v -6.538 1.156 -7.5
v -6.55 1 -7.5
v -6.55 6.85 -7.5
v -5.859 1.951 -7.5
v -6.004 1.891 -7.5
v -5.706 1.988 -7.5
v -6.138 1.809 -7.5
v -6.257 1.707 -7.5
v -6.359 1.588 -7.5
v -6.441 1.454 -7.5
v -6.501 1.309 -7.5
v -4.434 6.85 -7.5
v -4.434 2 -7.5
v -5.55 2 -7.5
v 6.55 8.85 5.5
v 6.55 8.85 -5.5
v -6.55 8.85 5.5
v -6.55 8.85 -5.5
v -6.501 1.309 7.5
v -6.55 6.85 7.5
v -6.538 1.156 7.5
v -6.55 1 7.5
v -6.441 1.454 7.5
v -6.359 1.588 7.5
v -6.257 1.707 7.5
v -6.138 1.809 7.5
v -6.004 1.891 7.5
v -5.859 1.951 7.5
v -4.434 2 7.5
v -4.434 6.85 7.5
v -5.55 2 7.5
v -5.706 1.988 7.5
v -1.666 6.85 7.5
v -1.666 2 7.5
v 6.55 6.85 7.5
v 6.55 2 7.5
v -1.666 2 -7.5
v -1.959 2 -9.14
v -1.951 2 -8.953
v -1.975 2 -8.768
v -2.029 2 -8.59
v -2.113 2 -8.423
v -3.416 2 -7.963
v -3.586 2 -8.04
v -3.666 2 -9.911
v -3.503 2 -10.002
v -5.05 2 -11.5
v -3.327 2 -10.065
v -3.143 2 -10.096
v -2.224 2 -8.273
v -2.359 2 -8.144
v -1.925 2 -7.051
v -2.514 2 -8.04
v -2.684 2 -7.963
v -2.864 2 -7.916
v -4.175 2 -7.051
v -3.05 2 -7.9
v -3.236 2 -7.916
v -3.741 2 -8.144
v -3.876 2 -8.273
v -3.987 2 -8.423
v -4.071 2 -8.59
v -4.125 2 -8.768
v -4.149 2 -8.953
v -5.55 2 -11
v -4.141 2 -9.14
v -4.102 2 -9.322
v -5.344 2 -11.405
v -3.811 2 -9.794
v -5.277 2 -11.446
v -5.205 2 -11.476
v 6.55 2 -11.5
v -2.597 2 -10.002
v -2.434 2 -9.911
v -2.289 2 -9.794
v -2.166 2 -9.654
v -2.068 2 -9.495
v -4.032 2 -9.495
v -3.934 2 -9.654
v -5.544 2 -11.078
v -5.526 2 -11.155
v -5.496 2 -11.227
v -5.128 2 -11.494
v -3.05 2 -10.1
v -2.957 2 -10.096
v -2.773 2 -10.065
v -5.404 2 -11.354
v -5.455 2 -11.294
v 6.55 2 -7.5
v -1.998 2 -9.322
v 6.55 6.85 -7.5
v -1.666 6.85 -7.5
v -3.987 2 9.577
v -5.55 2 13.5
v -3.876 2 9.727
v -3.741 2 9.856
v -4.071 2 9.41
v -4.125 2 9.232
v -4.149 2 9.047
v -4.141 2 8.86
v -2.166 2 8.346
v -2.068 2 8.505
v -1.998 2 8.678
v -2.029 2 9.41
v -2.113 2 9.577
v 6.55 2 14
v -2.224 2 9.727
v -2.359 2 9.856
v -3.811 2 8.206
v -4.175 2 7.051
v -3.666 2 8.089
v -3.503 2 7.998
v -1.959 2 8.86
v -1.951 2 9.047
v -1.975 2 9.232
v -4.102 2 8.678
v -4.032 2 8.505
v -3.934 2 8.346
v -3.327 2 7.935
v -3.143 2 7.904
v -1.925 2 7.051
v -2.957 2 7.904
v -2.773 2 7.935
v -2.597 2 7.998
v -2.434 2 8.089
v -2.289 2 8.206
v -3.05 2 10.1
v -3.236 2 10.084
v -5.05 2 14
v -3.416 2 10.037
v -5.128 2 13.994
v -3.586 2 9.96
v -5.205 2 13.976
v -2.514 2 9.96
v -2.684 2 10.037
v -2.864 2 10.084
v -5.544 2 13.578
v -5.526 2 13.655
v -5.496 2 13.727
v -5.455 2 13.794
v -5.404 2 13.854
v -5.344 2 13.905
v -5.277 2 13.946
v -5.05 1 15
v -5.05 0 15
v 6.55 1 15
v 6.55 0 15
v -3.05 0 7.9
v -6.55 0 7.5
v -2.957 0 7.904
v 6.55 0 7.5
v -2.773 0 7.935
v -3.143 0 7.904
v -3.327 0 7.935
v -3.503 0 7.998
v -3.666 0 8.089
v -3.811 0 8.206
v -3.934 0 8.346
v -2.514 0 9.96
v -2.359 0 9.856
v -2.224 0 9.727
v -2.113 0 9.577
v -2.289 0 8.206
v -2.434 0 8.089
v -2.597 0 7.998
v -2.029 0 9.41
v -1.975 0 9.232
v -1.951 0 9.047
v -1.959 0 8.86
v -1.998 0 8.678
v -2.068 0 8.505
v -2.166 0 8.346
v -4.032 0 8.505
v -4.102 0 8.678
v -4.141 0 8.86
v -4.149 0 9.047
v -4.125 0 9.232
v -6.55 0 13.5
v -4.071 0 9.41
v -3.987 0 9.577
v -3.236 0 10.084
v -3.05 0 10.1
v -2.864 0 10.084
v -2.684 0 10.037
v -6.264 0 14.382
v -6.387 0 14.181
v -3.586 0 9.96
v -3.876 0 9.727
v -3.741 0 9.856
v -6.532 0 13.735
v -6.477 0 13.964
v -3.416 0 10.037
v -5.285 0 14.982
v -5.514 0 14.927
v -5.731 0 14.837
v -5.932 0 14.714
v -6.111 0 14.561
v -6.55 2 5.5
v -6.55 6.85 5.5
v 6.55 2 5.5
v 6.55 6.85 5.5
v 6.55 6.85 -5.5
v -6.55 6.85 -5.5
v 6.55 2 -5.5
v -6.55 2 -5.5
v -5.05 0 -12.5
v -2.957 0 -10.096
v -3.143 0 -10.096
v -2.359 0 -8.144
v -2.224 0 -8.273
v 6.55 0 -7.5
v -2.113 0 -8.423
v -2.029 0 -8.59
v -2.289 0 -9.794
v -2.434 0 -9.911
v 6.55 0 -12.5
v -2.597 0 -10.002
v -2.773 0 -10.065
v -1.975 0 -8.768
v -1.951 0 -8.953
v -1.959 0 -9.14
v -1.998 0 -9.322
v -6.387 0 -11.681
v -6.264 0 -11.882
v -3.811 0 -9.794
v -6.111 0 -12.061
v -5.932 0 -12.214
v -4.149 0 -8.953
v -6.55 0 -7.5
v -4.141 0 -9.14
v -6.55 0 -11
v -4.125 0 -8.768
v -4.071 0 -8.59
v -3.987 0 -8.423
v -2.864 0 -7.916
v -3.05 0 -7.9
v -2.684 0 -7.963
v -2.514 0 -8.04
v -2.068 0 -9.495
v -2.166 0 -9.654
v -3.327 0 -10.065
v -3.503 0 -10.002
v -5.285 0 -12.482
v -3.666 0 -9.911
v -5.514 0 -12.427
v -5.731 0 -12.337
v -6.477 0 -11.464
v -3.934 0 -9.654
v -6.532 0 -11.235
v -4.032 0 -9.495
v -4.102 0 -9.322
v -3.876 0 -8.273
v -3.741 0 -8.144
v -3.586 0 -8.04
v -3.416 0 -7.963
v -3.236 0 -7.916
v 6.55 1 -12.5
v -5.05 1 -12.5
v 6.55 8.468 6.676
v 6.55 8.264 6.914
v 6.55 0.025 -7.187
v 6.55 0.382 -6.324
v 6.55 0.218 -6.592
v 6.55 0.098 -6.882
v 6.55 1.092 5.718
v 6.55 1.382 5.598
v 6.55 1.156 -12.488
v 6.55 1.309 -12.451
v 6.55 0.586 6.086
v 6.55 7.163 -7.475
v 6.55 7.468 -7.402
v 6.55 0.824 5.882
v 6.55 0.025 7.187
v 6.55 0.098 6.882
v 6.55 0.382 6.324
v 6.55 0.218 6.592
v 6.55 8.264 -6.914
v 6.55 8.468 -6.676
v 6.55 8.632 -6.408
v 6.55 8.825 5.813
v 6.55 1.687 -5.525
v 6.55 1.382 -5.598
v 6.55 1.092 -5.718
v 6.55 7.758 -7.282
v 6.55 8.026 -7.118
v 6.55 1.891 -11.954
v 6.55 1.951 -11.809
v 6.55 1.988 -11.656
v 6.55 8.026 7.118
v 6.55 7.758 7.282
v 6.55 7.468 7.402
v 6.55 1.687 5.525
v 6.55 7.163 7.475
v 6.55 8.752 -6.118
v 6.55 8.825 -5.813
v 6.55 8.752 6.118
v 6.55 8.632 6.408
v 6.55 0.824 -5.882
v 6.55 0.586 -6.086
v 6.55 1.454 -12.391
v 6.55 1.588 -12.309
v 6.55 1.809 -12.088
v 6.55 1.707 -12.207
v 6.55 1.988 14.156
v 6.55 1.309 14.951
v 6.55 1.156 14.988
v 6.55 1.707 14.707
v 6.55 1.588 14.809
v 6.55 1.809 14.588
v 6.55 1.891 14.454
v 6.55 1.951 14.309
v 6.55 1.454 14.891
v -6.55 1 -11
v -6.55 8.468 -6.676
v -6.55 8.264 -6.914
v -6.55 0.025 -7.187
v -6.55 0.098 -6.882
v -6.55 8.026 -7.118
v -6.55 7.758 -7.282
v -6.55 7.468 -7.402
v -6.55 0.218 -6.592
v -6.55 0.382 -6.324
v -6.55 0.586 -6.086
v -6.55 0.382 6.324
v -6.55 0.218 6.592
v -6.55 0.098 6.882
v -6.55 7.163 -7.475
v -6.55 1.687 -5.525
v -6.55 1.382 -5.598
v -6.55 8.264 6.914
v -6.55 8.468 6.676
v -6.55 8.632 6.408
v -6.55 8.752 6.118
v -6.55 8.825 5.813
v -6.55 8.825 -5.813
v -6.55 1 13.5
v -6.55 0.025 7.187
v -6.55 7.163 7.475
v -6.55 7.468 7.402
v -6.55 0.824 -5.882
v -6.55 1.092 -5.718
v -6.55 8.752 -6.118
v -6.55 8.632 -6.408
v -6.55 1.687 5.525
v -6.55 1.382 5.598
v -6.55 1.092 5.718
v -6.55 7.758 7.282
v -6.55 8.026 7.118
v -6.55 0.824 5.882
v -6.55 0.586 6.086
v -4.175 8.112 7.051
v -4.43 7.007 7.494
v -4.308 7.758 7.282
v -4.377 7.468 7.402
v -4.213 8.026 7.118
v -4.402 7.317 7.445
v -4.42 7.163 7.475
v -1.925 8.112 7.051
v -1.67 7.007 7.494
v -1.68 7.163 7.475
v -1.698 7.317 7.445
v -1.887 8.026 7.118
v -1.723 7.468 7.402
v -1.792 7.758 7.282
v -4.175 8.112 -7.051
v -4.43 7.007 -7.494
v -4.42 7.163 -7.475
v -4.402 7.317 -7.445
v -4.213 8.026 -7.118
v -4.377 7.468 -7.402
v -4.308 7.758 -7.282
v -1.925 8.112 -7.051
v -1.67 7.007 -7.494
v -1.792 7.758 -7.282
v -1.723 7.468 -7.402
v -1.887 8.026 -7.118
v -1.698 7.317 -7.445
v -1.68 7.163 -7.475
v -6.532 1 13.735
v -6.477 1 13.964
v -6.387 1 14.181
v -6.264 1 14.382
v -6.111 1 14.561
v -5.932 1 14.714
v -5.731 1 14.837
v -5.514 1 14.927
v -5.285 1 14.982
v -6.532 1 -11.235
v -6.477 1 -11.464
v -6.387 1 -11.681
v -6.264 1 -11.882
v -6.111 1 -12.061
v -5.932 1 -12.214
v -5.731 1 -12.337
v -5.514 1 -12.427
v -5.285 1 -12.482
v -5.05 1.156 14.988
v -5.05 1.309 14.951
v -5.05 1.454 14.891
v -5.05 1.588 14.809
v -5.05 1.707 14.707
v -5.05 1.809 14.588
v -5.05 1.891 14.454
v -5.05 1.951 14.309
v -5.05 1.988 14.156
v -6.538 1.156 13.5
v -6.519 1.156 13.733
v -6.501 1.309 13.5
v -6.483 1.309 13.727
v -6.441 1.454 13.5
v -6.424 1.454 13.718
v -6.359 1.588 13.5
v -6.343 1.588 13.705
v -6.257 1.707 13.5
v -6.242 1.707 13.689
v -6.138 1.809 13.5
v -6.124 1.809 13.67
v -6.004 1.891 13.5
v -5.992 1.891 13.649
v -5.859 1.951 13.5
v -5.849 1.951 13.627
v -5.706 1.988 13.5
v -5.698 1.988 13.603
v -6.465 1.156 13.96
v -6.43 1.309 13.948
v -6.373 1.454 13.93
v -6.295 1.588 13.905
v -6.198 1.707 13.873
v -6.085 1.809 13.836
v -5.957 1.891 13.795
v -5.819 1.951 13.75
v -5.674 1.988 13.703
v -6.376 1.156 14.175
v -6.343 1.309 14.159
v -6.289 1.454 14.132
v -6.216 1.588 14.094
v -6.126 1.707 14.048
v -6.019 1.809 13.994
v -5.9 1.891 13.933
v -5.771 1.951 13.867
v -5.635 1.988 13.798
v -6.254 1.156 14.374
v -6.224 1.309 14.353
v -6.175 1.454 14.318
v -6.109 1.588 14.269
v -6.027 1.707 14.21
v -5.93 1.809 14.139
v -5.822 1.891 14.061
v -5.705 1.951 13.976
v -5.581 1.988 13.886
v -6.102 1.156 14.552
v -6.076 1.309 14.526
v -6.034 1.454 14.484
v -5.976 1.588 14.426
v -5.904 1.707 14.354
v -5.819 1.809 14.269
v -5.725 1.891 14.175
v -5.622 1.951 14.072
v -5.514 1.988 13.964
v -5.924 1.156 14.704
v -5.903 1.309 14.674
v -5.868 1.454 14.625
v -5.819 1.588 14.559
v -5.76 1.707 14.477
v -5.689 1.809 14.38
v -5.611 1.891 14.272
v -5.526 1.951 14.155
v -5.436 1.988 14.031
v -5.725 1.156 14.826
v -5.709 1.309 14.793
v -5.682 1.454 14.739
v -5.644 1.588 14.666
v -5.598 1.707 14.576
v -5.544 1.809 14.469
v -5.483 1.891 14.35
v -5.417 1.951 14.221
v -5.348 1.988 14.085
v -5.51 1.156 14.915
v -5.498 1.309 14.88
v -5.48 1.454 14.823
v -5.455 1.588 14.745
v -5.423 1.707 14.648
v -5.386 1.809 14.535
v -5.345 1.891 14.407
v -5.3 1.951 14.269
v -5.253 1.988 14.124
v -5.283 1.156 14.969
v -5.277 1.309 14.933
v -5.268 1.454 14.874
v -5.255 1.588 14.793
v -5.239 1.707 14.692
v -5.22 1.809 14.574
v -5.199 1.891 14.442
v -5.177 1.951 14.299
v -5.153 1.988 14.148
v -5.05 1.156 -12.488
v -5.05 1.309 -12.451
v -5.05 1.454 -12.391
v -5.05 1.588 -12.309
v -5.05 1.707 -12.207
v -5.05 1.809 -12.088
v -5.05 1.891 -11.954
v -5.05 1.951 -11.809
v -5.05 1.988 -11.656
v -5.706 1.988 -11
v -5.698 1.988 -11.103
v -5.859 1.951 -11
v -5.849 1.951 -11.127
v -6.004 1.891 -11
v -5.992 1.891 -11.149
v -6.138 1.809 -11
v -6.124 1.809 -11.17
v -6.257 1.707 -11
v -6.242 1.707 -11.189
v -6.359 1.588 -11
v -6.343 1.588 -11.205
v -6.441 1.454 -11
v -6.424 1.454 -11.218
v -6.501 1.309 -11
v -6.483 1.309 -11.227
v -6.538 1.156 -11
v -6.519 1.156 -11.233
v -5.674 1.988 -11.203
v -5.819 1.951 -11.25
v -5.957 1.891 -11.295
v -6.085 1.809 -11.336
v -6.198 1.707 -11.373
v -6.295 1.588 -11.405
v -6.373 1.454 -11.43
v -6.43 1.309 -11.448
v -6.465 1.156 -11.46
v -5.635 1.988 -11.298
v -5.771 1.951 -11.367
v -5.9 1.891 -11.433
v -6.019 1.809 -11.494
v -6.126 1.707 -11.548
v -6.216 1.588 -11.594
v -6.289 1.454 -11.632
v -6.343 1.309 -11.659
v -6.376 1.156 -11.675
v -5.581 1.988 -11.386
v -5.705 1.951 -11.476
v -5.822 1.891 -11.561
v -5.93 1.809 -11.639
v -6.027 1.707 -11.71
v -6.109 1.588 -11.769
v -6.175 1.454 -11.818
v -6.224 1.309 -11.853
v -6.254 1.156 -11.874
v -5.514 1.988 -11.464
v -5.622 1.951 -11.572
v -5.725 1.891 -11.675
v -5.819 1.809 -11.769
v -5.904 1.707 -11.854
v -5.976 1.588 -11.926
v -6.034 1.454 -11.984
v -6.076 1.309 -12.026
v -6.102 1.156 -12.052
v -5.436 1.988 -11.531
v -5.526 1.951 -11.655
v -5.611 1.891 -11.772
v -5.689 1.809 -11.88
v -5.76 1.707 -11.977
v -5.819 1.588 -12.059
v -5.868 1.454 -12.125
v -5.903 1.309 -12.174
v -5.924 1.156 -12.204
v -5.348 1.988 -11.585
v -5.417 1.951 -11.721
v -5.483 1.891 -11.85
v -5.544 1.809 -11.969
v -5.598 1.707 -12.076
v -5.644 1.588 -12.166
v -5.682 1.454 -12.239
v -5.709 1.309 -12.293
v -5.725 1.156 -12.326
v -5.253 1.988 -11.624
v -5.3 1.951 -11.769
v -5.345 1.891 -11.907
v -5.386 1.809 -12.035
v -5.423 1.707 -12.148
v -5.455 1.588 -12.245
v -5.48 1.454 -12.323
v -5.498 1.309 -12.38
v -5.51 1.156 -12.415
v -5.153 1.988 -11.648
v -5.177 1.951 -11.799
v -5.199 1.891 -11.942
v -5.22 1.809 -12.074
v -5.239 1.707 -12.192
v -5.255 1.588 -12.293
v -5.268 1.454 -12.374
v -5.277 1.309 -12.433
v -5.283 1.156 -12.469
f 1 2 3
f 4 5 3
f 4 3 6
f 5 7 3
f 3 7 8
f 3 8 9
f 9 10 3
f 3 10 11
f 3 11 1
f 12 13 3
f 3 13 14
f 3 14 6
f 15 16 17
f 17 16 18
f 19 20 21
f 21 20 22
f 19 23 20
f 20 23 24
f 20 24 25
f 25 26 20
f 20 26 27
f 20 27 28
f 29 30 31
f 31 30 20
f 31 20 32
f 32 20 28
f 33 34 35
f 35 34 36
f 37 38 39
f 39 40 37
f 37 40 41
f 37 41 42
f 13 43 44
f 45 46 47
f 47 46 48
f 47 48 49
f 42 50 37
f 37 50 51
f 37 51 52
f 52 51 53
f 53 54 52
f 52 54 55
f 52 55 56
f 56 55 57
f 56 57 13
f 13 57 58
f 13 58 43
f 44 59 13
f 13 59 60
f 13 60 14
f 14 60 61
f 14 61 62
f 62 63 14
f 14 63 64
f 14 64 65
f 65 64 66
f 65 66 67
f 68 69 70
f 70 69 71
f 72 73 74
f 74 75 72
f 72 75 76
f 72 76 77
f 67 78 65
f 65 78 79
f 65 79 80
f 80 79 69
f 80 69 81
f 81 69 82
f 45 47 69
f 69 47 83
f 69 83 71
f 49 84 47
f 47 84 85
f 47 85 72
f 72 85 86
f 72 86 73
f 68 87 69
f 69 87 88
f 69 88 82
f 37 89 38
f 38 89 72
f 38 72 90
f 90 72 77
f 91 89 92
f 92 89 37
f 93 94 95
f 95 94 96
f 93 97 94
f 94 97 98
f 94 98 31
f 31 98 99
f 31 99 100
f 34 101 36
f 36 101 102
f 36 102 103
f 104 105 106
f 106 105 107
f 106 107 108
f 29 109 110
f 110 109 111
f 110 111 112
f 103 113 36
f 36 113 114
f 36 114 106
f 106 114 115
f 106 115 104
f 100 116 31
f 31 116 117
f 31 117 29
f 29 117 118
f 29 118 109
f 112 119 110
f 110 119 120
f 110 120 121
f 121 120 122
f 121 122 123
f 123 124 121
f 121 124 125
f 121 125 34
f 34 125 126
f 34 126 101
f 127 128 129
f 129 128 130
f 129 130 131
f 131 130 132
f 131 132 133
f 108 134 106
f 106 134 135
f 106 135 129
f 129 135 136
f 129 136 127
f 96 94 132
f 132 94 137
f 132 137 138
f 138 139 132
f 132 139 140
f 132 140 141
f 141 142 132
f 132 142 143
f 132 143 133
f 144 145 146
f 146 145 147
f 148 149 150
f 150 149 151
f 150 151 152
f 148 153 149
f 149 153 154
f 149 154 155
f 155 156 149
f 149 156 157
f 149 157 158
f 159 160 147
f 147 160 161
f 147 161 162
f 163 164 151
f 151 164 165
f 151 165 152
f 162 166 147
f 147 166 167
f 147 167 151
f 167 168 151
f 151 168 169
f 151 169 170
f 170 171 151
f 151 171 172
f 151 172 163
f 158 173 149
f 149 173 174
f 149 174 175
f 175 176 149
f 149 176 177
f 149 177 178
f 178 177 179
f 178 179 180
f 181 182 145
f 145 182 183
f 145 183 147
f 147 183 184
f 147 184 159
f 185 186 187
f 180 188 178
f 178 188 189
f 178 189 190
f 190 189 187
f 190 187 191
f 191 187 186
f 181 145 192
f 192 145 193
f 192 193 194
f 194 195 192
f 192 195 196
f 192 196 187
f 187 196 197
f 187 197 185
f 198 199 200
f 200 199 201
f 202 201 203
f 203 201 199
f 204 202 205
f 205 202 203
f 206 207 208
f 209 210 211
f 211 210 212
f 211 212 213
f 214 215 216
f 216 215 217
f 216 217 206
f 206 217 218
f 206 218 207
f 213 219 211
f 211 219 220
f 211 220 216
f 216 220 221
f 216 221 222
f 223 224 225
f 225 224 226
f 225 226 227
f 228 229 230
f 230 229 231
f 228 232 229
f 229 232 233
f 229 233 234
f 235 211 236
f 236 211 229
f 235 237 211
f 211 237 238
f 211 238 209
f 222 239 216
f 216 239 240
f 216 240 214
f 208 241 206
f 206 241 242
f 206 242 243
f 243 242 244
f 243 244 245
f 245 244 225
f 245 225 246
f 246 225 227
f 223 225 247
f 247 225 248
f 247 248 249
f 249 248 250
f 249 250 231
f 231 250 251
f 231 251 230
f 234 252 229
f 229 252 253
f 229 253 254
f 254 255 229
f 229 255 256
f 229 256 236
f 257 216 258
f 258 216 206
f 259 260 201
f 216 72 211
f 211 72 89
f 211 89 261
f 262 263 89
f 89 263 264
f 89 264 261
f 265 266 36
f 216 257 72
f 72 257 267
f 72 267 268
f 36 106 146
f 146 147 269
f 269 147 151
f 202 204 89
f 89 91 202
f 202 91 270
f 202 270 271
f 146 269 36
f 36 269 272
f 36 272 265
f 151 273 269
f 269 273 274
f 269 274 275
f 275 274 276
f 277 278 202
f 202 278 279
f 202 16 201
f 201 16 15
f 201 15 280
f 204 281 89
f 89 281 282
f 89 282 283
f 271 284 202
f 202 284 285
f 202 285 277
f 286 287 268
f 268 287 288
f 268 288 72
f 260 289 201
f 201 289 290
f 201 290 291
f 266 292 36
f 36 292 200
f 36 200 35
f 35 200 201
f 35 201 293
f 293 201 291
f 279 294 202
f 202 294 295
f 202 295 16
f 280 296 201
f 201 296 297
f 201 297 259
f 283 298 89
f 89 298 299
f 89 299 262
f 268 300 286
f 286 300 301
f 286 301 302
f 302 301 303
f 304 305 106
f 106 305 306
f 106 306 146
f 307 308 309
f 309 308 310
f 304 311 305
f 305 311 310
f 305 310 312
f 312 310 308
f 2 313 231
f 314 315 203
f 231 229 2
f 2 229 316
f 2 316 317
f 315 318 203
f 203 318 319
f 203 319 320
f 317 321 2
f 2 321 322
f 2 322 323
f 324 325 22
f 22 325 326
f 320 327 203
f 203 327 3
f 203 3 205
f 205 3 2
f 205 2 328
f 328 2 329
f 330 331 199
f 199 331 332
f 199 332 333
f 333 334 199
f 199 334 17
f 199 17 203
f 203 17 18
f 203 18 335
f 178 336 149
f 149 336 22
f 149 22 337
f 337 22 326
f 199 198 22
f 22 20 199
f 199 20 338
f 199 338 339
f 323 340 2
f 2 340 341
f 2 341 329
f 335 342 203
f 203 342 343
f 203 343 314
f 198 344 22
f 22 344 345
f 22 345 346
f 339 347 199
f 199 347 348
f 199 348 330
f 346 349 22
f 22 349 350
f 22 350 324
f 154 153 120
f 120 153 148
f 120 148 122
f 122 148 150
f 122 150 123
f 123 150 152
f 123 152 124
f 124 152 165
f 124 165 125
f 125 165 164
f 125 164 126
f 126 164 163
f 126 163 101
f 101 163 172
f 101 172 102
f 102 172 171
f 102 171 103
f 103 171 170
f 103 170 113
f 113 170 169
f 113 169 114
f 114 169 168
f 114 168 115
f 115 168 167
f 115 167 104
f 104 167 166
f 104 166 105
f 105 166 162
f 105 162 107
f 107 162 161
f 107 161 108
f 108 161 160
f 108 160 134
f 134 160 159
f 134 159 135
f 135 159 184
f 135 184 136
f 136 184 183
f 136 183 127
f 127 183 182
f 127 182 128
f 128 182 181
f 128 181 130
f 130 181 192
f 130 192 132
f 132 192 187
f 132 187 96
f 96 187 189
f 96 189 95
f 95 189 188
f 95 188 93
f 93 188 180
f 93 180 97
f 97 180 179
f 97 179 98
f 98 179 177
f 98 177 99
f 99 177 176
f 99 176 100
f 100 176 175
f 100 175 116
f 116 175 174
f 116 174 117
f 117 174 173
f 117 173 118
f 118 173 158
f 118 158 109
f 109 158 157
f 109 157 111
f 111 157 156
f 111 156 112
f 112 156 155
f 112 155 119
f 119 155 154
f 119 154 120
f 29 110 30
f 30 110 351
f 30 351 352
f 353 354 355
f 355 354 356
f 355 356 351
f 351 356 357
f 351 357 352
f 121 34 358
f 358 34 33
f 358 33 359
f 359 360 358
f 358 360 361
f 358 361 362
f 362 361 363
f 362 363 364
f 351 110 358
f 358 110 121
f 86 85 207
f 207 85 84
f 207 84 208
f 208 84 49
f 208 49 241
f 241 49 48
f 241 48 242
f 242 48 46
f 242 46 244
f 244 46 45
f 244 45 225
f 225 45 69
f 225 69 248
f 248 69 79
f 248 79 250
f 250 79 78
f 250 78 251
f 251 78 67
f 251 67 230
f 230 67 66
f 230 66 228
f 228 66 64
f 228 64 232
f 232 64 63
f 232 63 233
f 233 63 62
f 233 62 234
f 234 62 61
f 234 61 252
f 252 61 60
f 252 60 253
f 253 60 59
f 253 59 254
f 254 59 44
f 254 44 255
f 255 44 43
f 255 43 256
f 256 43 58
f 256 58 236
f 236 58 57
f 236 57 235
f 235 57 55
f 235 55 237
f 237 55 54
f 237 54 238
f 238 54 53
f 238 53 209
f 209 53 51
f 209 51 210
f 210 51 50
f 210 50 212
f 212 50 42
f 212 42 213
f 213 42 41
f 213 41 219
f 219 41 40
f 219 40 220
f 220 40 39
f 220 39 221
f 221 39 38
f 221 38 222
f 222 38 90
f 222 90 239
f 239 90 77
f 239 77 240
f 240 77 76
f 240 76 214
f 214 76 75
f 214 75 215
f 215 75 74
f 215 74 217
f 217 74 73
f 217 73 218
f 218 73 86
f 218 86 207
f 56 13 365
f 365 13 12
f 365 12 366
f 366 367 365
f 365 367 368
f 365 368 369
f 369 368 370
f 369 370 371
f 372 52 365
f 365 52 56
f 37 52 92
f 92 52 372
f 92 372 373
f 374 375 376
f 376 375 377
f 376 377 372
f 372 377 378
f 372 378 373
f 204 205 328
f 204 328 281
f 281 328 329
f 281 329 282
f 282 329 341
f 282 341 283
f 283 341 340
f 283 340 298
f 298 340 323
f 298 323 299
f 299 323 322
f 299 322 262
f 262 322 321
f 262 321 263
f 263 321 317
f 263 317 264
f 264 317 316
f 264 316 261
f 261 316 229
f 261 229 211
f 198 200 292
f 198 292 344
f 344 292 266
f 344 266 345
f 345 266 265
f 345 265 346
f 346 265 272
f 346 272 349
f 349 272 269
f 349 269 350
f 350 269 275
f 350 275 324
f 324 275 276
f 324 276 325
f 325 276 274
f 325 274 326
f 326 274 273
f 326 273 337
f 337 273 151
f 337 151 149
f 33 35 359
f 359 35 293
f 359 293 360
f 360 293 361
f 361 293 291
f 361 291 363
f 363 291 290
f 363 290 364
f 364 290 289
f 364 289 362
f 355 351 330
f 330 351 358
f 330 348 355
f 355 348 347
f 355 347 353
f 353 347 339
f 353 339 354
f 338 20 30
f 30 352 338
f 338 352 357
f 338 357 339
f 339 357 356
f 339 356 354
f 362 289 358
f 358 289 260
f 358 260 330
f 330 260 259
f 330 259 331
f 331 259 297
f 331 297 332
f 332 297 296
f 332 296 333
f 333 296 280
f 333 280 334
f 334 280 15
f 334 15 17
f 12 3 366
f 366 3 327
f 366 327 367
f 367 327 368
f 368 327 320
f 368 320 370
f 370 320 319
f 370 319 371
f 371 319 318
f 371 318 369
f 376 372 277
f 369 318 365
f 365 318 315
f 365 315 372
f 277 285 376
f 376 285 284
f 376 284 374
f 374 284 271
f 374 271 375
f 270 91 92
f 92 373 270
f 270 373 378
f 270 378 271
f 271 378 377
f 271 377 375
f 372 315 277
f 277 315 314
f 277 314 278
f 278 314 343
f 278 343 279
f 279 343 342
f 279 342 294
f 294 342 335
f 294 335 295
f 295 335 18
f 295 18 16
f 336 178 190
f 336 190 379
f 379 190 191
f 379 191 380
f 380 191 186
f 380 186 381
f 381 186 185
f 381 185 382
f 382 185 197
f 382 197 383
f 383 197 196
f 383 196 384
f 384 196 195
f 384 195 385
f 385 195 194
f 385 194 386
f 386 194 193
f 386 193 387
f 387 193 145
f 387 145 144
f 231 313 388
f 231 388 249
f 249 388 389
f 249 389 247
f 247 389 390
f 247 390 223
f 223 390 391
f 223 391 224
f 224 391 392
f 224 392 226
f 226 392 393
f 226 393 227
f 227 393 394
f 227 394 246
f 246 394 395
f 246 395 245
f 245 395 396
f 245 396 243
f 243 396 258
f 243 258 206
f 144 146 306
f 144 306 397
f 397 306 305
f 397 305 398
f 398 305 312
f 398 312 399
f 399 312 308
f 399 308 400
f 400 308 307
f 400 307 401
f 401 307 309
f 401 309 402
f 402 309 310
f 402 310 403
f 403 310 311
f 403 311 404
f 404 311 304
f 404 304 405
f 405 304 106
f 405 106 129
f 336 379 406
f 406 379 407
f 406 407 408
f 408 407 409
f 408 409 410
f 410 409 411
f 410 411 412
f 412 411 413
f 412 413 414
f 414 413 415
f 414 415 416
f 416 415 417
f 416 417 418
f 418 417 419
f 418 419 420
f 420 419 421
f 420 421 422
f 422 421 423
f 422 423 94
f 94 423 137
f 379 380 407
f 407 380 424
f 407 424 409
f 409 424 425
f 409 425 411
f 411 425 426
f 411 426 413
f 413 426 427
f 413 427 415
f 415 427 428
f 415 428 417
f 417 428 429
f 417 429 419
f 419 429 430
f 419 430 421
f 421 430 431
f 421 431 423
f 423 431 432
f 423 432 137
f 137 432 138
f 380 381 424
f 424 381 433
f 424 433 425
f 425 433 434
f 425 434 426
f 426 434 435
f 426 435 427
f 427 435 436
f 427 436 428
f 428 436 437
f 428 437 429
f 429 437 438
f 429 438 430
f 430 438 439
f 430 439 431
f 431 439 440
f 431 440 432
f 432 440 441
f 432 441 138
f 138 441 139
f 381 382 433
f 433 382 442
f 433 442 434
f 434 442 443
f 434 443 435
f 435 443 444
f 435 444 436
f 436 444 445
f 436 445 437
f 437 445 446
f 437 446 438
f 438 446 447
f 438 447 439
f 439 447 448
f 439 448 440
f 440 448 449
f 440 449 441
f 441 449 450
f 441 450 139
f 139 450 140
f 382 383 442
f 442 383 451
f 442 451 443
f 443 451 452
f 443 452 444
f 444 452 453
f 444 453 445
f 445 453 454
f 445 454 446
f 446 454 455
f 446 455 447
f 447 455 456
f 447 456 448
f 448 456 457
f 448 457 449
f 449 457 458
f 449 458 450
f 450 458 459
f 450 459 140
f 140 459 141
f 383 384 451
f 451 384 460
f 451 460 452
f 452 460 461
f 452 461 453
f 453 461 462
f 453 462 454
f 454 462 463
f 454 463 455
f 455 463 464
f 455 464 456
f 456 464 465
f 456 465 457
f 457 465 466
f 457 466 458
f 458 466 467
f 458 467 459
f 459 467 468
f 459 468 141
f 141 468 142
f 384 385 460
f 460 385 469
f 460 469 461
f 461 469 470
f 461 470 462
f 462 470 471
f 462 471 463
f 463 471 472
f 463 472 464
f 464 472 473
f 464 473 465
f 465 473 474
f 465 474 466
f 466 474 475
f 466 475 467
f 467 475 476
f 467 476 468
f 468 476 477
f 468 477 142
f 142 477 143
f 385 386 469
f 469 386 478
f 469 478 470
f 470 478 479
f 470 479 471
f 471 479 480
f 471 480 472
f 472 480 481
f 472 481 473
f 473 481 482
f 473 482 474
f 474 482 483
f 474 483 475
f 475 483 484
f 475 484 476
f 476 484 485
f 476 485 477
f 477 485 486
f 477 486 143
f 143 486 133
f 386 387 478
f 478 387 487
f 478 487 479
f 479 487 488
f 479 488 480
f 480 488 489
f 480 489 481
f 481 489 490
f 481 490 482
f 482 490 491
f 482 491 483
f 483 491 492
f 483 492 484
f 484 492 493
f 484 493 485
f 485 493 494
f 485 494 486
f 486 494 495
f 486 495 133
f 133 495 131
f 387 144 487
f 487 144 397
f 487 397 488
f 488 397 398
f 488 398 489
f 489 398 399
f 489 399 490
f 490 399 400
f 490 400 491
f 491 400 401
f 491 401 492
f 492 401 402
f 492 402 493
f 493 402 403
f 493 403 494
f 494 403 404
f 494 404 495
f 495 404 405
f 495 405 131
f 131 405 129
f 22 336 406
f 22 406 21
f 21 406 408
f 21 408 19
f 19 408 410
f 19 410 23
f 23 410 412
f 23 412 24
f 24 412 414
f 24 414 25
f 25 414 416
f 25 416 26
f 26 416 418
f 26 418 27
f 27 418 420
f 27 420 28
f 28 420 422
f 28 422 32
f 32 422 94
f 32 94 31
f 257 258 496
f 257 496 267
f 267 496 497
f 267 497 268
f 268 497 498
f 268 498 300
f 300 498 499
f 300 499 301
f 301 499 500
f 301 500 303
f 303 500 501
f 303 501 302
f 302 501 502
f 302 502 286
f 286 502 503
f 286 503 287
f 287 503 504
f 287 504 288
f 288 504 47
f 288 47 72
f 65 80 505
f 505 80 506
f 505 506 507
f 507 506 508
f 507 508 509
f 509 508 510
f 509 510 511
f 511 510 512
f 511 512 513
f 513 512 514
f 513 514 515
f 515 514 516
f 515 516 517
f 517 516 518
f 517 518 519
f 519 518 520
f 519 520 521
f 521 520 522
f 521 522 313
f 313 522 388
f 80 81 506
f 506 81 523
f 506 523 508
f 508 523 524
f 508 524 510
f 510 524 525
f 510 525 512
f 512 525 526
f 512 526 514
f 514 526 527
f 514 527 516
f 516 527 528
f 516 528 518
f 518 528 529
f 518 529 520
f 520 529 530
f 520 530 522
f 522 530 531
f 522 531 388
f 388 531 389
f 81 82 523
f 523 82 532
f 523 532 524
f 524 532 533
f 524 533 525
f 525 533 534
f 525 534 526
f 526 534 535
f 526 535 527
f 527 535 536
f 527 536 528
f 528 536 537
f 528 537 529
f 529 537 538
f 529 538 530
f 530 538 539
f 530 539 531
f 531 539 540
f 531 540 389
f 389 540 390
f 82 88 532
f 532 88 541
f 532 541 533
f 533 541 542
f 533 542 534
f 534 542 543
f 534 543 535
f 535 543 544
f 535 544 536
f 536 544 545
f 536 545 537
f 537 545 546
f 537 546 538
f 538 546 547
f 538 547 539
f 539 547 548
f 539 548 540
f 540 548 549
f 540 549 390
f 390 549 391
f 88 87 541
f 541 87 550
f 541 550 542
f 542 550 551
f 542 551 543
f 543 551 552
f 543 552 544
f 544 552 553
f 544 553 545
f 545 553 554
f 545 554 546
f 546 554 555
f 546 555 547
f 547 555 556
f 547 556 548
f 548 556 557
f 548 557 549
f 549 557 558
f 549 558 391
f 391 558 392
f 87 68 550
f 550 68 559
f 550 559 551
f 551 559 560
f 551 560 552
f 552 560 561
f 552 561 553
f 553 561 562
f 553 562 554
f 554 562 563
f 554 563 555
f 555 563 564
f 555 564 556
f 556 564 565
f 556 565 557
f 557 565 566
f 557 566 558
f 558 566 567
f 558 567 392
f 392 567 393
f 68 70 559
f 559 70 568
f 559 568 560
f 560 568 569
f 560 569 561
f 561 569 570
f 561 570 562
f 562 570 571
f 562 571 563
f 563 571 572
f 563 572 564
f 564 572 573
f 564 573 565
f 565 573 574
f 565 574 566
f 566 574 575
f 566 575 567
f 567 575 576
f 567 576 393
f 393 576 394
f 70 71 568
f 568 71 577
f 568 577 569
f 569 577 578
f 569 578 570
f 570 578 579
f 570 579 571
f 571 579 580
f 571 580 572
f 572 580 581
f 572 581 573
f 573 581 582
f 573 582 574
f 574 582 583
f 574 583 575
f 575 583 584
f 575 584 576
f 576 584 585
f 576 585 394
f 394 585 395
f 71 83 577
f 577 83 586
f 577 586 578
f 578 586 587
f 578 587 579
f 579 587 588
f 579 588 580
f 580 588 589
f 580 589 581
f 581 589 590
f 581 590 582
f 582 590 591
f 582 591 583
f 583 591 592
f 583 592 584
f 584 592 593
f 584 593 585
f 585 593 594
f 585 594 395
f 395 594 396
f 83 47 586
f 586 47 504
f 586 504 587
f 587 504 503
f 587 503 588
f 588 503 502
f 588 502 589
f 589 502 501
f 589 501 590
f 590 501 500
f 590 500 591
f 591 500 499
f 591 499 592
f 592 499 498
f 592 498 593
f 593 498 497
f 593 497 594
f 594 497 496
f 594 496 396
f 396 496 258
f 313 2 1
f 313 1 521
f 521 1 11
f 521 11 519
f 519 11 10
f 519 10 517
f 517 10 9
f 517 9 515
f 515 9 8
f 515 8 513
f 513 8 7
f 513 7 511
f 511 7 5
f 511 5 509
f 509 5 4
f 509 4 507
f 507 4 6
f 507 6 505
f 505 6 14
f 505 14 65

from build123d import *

# Parameters (mm, degrees)
BOSS_EXTRUDE1_DEPTH = 6.55
CUT_EXTRUDE1_REACH  = 19.743
SKETCH2_R           = 1.1
CUT_EXTRUDE2_REACH  = 19.743
FILLET1_R           = 2
FILLET3_R           = 1.5
FILLET4_R           = 1


with BuildPart() as part:
    # Sketch1 → Boss-Extrude1 (new, symmetric)
    with BuildSketch(Plane(origin=(0, 0, 0), x_dir=(0, 0, -1), z_dir=(1, 0, 0))):
        Polygon((-5.5, 6.85), (5.5, 6.85), (5.5, 0), (12.5, 0), (12.5, 2), (7.5, 2), (7.5, 8.85), (-7.5, 8.85), (-7.5, 2), (-15, 2), (-15, 0), (-5.5, 0), align=None)
    extrude(amount=BOSS_EXTRUDE1_DEPTH, both=True)

    # Sketch2 → Cut-Extrude1 (cut, up to next)
    with BuildSketch(Plane(origin=(0, 2, 0), x_dir=(1, 0, 0), z_dir=(0, 1, 0)), mode=Mode.PRIVATE) as cut_extrude1_sk1:
        with Locations(Location((-3.05, -9, 0), (0, 0, 270))):
            Circle(SKETCH2_R)
    cut_extrude1_tool1 = extrude(cut_extrude1_sk1.sketch, amount=-CUT_EXTRUDE1_REACH, mode=Mode.PRIVATE) & part.part
    cut_extrude1 = cut_extrude1_tool1.solids().sort_by_distance((-3.05, 2, 9))[0]
    add(cut_extrude1, mode=Mode.SUBTRACT)

    # Sketch3 → Cut-Extrude2 (cut, up to next)
    with BuildSketch(Plane(origin=(0, 2, 0), x_dir=(1, 0, 0), z_dir=(0, 1, 0)), mode=Mode.PRIVATE) as cut_extrude2_sk1:
        Polygon((-5.3, -9), (-4.175, -10.948557159), (-1.925, -10.948557159), (-0.8, -9), (-1.925, -7.051442841), (-4.175, -7.051442841), align=None)
    cut_extrude2_tool1 = extrude(cut_extrude2_sk1.sketch, amount=CUT_EXTRUDE2_REACH, mode=Mode.PRIVATE) & part.part
    cut_extrude2 = cut_extrude2_tool1.solids().sort_by_distance((-3.05, 2, 9))[0]
    add(cut_extrude2, mode=Mode.SUBTRACT)

    # Mirror1: Cut-Extrude1, Cut-Extrude2 across plane
    add(cut_extrude1.mirror(Plane.XY), mode=Mode.SUBTRACT)
    add(cut_extrude2.mirror(Plane.XY), mode=Mode.SUBTRACT)

    # Fillet1
    # the kernel refuses this fillet: 2 mm, written as the material it takes off along each edge
    with BuildSketch(Plane(origin=(-11.55, 0, -5.5), x_dir=(0, 1, 0), z_dir=(1, 0, 0)), Plane(origin=(11.55, 0, 5.5), x_dir=(0, 1, 0), z_dir=(-1, 0, 0))) as fillet1_piece_1:
        with BuildLine():
            CenterArc((FILLET1_R, -FILLET1_R), FILLET1_R, 90, 90)
            Line((0, -FILLET1_R), (0, 0))
            Line((0, 0), (FILLET1_R, 0))
        make_face()
    extrude(amount=23.1, mode=Mode.SUBTRACT)
    with BuildSketch(Plane(origin=(-6.666025404, 8.85, 7.5), x_dir=(0, 0, -1), z_dir=(1, 0, 0))) as fillet1_piece_2:
        with BuildLine():
            CenterArc((FILLET1_R, -FILLET1_R), FILLET1_R, 90, 90)
            Line((0, -FILLET1_R), (0, 0))
            Line((0, 0), (FILLET1_R, 0))
        make_face()
    extrude(amount=18.216025404, mode=Mode.SUBTRACT)
    with BuildSketch(Plane(origin=(-6.666025404, 8.85, -7.5), x_dir=(0, 0, 1), z_dir=(1, 0, 0))) as fillet1_piece_3:
        with BuildLine():
            CenterArc((FILLET1_R, FILLET1_R), FILLET1_R, 180, 90)
            Line((0, FILLET1_R), (0, 0))
            Line((0, 0), (FILLET1_R, 0))
        make_face()
    extrude(amount=18.216025404, mode=Mode.SUBTRACT)

    # Fillet3
    fillet3_edges = [part.edges().sort_by_distance(p)[0] for p in [
        (-6.55, 1, -12.5),
        (-6.55, 1, 15),
    ]]
    fillet(fillet3_edges, radius=FILLET3_R)

    # Fillet4
    fillet4_edges = [part.edges().sort_by_distance(p)[0] for p in [
        (-6.110660172, 2, 14.560660172),
        (-6.110660172, 2, -12.060660172),
        (-6.55, 2, 10.5),
        (-6.55, 2, -9.25),
        (0.75, 2, -12.5),
        (0.75, 2, 15),
    ]]
    fillet(fillet4_edges, radius=FILLET4_R)


solid = part.part
